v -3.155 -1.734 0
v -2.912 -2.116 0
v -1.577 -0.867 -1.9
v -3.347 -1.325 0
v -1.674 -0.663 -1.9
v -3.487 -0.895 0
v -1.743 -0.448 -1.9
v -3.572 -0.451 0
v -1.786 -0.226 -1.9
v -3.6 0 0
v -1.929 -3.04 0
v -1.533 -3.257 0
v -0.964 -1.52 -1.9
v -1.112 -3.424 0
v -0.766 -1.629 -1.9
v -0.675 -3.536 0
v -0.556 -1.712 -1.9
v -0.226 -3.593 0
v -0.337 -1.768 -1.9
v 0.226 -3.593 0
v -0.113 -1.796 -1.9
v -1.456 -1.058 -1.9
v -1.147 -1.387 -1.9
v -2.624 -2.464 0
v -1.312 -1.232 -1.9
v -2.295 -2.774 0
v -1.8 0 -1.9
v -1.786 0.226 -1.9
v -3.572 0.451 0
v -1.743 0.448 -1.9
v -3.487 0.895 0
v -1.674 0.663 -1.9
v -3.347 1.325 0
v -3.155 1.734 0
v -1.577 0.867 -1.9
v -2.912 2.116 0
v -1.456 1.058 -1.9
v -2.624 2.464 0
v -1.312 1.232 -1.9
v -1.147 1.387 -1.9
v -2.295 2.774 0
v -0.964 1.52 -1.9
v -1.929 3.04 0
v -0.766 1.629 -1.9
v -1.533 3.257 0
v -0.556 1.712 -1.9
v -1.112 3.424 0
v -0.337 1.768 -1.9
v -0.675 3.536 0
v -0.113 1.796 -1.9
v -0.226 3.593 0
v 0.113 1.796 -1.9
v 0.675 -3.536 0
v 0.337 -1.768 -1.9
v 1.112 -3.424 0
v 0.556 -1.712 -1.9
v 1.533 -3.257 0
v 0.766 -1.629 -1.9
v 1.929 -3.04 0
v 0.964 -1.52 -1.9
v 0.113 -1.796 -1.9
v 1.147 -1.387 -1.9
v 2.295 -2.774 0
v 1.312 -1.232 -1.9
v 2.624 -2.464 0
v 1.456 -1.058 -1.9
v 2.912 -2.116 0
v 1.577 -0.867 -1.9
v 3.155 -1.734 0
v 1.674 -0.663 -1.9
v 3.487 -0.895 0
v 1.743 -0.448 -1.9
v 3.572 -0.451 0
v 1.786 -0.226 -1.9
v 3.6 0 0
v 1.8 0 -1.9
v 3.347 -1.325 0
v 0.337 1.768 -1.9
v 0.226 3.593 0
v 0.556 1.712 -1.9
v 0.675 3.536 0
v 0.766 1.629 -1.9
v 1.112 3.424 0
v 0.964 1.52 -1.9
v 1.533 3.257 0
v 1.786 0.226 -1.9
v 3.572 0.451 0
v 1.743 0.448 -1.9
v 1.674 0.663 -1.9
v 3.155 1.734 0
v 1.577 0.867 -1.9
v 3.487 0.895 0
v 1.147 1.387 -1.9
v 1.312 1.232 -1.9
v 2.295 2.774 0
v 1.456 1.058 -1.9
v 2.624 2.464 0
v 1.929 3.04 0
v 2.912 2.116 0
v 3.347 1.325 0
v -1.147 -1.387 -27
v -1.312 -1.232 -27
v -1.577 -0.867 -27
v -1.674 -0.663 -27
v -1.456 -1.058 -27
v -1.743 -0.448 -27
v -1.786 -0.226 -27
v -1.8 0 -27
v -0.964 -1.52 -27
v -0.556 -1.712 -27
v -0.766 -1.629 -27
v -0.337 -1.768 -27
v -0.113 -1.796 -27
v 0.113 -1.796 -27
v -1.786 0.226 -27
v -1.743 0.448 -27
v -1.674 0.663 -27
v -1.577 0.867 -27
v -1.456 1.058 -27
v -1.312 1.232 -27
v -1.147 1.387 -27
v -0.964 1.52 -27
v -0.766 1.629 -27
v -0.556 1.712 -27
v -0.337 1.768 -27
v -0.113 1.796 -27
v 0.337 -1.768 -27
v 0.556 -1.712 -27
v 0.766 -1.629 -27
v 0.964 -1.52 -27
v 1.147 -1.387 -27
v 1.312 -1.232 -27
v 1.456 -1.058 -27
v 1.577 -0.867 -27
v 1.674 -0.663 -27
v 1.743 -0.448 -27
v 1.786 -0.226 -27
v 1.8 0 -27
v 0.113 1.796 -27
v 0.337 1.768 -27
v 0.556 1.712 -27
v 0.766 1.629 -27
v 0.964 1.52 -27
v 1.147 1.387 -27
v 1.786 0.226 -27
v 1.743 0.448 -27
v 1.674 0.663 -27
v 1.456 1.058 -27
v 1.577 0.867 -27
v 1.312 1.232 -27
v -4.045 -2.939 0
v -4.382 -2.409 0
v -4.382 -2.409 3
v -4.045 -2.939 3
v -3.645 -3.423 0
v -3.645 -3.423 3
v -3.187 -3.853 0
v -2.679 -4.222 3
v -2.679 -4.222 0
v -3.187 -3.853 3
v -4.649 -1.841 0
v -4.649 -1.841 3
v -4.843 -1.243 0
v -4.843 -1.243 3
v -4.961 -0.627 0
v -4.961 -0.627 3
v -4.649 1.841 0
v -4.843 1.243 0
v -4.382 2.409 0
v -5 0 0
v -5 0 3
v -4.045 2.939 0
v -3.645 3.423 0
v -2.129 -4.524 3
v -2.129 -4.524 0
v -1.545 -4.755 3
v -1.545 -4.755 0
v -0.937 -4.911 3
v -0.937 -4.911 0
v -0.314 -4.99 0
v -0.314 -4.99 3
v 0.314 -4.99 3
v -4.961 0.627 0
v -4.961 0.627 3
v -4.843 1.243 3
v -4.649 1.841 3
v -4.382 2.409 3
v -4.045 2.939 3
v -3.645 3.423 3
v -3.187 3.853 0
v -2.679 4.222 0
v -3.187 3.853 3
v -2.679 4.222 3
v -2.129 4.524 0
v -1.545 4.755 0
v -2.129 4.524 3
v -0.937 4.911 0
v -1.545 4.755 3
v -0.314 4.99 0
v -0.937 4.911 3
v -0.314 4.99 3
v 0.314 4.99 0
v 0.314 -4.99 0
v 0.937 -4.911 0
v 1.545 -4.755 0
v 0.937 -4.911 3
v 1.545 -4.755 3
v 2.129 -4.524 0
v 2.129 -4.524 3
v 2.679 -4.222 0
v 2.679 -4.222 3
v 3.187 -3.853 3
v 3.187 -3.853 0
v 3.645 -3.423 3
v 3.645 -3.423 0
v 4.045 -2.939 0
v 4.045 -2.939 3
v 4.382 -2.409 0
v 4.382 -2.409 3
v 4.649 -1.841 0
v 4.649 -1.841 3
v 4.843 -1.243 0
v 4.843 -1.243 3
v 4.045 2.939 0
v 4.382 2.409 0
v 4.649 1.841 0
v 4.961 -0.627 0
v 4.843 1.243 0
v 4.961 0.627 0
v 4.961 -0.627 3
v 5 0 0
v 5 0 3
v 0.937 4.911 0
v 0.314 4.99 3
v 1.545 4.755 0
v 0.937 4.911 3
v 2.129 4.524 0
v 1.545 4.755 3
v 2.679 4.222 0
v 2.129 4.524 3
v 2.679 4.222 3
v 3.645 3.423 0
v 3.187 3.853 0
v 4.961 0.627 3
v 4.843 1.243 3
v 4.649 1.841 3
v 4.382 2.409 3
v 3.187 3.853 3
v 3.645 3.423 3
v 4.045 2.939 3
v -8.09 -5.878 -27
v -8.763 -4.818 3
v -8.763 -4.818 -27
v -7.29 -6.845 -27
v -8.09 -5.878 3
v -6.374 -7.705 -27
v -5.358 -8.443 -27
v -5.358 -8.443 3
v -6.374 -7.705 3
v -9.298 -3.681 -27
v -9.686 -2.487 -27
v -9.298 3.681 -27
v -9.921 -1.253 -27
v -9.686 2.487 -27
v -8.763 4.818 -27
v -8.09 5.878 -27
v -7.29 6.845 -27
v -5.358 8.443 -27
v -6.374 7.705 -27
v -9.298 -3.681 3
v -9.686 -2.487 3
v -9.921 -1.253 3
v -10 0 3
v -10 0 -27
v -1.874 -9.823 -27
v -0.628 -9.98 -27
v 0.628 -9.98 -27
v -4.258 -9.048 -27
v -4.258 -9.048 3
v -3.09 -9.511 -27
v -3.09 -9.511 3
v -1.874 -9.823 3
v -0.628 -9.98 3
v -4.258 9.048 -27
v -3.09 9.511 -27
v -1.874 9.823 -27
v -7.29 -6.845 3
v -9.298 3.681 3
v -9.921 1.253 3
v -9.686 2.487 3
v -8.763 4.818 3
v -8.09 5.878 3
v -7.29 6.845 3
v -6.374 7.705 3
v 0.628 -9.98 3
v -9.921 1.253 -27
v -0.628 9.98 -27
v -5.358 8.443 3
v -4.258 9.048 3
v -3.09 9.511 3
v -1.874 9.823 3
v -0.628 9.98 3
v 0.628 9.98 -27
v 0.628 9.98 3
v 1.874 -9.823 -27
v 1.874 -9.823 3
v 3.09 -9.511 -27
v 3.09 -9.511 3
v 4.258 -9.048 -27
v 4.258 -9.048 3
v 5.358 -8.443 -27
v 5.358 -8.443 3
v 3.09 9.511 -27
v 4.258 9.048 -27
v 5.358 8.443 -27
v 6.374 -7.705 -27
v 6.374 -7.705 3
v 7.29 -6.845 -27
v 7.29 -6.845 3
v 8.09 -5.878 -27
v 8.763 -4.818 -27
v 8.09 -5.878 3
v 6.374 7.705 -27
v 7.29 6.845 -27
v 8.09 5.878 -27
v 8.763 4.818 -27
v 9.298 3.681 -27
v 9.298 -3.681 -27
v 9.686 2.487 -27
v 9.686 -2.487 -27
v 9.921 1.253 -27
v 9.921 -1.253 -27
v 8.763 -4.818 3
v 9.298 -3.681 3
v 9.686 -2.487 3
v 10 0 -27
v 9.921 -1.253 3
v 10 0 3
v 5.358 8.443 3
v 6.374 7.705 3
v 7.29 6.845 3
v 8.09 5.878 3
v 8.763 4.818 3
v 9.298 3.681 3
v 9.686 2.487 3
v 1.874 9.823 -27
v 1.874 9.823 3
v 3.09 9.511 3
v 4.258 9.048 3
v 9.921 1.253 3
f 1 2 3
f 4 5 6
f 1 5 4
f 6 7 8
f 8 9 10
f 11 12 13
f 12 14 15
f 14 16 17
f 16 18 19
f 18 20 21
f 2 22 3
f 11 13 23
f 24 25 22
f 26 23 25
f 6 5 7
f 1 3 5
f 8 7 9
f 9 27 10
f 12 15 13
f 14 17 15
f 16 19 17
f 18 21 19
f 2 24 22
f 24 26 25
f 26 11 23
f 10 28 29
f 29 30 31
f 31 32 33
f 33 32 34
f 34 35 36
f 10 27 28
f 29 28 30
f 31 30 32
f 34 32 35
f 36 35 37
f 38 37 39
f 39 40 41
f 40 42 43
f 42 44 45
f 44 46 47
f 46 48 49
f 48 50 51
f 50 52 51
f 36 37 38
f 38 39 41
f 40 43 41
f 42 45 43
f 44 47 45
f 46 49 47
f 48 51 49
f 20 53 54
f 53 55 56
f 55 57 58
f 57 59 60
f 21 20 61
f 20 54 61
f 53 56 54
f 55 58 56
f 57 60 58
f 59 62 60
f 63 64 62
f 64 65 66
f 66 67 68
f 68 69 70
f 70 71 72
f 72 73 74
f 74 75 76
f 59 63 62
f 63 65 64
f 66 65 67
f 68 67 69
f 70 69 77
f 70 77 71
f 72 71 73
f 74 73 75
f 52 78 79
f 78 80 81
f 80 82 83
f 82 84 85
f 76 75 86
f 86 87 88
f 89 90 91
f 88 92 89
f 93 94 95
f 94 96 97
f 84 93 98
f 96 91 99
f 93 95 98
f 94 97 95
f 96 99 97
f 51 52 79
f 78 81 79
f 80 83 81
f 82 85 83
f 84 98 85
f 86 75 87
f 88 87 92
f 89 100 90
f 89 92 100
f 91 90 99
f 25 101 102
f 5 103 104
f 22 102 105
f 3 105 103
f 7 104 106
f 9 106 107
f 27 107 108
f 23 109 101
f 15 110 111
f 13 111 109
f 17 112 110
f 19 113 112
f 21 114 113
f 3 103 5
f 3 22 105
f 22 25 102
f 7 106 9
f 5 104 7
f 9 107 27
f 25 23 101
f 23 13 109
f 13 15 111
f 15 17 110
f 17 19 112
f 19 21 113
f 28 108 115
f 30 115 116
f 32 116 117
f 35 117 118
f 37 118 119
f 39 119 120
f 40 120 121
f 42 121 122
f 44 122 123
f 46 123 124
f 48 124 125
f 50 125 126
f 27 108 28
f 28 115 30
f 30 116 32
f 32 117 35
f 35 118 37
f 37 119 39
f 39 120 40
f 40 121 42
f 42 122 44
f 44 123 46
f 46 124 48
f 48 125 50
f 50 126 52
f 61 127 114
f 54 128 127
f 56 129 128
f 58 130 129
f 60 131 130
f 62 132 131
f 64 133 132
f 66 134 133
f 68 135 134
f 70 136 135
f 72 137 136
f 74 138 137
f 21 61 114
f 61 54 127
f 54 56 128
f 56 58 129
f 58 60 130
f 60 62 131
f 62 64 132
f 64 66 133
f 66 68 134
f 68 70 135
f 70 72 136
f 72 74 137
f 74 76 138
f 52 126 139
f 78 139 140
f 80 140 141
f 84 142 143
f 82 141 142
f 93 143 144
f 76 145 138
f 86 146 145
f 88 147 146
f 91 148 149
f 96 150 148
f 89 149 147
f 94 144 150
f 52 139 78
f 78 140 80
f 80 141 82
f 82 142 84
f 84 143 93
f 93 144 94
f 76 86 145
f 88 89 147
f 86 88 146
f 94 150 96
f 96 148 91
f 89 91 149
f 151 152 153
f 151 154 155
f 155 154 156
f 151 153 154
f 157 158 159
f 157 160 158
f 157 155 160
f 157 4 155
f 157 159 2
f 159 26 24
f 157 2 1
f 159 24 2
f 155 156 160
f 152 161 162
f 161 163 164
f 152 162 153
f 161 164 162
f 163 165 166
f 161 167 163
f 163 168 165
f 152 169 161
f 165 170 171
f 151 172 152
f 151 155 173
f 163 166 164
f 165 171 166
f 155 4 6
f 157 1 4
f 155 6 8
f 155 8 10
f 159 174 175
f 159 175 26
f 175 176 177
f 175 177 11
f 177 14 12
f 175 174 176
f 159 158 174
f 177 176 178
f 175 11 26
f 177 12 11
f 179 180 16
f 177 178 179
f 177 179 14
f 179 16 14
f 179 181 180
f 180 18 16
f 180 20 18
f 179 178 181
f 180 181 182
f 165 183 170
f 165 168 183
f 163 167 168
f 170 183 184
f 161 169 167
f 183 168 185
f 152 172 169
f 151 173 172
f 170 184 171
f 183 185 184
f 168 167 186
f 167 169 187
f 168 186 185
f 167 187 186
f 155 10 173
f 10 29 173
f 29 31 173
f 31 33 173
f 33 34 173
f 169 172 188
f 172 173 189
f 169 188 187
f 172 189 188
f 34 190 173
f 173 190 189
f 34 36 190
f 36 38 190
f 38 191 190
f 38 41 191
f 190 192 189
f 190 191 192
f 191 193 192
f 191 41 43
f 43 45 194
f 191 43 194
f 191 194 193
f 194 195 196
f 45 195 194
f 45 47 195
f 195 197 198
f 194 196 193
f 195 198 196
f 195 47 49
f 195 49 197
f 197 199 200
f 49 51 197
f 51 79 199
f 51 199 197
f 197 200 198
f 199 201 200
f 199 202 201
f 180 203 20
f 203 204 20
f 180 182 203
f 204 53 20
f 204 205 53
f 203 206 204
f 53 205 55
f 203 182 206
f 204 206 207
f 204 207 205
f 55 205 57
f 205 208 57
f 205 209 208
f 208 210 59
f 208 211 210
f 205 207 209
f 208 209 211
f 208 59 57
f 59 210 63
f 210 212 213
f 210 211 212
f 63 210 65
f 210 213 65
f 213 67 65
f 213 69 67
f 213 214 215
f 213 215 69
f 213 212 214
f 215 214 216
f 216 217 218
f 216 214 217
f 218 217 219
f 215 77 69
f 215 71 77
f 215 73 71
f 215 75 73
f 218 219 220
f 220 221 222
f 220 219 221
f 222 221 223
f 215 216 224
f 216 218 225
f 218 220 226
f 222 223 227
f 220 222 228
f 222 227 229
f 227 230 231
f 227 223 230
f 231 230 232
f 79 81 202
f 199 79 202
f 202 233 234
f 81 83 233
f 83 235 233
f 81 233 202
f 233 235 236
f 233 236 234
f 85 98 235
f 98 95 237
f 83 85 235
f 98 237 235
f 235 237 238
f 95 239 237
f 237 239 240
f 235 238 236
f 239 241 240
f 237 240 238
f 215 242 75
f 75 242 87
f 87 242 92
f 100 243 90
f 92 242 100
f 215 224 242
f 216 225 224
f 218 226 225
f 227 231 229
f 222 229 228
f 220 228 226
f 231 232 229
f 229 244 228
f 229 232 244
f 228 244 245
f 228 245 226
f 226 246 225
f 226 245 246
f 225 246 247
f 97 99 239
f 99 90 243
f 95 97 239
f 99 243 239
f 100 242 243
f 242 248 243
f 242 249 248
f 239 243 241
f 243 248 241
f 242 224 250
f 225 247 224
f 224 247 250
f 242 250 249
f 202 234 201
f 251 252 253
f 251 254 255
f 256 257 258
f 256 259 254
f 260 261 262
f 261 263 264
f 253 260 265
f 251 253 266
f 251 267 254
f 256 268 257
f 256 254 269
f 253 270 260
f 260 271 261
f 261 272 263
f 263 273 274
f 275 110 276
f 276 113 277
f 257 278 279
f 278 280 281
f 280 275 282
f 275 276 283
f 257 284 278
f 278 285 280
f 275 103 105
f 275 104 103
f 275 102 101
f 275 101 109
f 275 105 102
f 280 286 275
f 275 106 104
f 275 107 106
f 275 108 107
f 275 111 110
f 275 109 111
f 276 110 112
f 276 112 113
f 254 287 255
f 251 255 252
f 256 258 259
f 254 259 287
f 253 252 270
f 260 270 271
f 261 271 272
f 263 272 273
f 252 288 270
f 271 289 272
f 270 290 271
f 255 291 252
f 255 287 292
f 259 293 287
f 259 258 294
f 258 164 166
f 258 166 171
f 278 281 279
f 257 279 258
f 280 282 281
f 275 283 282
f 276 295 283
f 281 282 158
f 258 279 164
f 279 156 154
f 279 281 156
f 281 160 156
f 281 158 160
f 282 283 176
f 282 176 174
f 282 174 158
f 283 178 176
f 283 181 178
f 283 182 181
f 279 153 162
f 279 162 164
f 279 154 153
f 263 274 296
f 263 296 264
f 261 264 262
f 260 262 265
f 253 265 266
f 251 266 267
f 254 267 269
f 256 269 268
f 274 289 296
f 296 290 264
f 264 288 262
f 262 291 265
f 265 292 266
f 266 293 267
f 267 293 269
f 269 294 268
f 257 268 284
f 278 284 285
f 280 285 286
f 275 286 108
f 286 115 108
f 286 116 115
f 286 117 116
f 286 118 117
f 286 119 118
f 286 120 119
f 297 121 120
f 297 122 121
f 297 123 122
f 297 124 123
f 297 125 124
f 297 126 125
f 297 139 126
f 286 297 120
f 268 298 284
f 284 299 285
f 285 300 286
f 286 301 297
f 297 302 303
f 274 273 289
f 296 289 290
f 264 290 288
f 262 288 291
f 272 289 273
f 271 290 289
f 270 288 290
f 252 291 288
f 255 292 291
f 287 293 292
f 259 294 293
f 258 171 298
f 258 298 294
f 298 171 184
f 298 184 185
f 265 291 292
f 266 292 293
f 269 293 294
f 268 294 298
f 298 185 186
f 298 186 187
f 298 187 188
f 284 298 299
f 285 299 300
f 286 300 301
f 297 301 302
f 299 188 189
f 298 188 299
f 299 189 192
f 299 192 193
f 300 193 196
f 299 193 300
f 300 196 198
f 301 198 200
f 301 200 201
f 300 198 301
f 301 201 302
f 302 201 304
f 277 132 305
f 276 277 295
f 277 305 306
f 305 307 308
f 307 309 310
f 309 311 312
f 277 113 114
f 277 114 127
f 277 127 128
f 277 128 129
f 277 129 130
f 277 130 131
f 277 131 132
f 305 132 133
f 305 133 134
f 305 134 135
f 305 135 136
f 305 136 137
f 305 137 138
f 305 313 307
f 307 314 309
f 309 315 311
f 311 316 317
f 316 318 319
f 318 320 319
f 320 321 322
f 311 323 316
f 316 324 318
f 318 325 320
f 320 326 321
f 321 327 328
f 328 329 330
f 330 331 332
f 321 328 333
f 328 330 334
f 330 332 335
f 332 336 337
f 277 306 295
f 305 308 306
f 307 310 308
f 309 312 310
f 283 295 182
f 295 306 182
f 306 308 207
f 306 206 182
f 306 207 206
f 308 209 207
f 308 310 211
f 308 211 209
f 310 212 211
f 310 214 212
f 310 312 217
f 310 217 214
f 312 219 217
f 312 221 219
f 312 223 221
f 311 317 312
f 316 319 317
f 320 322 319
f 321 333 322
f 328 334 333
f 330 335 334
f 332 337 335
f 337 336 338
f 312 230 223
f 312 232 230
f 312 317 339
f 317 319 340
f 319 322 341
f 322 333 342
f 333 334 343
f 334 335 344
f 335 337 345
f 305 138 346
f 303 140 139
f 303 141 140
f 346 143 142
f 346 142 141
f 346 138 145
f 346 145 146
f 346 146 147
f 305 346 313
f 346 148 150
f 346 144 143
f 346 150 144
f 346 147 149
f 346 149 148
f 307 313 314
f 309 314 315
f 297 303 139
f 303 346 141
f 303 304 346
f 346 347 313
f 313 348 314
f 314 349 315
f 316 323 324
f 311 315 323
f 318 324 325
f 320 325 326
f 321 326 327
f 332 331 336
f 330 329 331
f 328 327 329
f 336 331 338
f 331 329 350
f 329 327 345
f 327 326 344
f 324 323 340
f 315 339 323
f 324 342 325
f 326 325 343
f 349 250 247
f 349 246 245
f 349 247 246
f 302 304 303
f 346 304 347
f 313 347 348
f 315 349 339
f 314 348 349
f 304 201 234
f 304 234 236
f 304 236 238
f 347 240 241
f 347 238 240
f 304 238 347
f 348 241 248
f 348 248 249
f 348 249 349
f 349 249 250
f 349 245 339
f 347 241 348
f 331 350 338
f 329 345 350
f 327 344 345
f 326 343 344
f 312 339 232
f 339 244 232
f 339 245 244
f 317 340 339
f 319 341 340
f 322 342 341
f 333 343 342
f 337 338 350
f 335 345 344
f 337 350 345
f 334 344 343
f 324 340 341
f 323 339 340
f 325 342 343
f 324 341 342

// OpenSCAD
$fn = 50;

difference() {
	union() {
		translate(v = [0, 0, -27.0]) {
			cylinder(h = 30, r = 10.0);
		}
	}
	union() {
		translate(v = [0, 0, 0]) {
			rotate(a = [0, 0, 0]) {
				difference() {
					union() {
						translate(v = [0, 0, -30.0]) {
							cylinder(h = 30, r = 1.5);
						}
						translate(v = [0, 0, -1.9]) {
							cylinder(h = 1.9, r1 = 1.8, r2 = 3.6);
						}
						translate(v = [0, 0, -30.0]) {
							cylinder(h = 30, r = 1.8);
						}
						translate(v = [0, 0, -30.0]) {
							cylinder(h = 30, r = 1.5);
						}
					}
					union();
				}
			}
		}
		#cylinder(h = 3, r = 5.0);
	}
}
